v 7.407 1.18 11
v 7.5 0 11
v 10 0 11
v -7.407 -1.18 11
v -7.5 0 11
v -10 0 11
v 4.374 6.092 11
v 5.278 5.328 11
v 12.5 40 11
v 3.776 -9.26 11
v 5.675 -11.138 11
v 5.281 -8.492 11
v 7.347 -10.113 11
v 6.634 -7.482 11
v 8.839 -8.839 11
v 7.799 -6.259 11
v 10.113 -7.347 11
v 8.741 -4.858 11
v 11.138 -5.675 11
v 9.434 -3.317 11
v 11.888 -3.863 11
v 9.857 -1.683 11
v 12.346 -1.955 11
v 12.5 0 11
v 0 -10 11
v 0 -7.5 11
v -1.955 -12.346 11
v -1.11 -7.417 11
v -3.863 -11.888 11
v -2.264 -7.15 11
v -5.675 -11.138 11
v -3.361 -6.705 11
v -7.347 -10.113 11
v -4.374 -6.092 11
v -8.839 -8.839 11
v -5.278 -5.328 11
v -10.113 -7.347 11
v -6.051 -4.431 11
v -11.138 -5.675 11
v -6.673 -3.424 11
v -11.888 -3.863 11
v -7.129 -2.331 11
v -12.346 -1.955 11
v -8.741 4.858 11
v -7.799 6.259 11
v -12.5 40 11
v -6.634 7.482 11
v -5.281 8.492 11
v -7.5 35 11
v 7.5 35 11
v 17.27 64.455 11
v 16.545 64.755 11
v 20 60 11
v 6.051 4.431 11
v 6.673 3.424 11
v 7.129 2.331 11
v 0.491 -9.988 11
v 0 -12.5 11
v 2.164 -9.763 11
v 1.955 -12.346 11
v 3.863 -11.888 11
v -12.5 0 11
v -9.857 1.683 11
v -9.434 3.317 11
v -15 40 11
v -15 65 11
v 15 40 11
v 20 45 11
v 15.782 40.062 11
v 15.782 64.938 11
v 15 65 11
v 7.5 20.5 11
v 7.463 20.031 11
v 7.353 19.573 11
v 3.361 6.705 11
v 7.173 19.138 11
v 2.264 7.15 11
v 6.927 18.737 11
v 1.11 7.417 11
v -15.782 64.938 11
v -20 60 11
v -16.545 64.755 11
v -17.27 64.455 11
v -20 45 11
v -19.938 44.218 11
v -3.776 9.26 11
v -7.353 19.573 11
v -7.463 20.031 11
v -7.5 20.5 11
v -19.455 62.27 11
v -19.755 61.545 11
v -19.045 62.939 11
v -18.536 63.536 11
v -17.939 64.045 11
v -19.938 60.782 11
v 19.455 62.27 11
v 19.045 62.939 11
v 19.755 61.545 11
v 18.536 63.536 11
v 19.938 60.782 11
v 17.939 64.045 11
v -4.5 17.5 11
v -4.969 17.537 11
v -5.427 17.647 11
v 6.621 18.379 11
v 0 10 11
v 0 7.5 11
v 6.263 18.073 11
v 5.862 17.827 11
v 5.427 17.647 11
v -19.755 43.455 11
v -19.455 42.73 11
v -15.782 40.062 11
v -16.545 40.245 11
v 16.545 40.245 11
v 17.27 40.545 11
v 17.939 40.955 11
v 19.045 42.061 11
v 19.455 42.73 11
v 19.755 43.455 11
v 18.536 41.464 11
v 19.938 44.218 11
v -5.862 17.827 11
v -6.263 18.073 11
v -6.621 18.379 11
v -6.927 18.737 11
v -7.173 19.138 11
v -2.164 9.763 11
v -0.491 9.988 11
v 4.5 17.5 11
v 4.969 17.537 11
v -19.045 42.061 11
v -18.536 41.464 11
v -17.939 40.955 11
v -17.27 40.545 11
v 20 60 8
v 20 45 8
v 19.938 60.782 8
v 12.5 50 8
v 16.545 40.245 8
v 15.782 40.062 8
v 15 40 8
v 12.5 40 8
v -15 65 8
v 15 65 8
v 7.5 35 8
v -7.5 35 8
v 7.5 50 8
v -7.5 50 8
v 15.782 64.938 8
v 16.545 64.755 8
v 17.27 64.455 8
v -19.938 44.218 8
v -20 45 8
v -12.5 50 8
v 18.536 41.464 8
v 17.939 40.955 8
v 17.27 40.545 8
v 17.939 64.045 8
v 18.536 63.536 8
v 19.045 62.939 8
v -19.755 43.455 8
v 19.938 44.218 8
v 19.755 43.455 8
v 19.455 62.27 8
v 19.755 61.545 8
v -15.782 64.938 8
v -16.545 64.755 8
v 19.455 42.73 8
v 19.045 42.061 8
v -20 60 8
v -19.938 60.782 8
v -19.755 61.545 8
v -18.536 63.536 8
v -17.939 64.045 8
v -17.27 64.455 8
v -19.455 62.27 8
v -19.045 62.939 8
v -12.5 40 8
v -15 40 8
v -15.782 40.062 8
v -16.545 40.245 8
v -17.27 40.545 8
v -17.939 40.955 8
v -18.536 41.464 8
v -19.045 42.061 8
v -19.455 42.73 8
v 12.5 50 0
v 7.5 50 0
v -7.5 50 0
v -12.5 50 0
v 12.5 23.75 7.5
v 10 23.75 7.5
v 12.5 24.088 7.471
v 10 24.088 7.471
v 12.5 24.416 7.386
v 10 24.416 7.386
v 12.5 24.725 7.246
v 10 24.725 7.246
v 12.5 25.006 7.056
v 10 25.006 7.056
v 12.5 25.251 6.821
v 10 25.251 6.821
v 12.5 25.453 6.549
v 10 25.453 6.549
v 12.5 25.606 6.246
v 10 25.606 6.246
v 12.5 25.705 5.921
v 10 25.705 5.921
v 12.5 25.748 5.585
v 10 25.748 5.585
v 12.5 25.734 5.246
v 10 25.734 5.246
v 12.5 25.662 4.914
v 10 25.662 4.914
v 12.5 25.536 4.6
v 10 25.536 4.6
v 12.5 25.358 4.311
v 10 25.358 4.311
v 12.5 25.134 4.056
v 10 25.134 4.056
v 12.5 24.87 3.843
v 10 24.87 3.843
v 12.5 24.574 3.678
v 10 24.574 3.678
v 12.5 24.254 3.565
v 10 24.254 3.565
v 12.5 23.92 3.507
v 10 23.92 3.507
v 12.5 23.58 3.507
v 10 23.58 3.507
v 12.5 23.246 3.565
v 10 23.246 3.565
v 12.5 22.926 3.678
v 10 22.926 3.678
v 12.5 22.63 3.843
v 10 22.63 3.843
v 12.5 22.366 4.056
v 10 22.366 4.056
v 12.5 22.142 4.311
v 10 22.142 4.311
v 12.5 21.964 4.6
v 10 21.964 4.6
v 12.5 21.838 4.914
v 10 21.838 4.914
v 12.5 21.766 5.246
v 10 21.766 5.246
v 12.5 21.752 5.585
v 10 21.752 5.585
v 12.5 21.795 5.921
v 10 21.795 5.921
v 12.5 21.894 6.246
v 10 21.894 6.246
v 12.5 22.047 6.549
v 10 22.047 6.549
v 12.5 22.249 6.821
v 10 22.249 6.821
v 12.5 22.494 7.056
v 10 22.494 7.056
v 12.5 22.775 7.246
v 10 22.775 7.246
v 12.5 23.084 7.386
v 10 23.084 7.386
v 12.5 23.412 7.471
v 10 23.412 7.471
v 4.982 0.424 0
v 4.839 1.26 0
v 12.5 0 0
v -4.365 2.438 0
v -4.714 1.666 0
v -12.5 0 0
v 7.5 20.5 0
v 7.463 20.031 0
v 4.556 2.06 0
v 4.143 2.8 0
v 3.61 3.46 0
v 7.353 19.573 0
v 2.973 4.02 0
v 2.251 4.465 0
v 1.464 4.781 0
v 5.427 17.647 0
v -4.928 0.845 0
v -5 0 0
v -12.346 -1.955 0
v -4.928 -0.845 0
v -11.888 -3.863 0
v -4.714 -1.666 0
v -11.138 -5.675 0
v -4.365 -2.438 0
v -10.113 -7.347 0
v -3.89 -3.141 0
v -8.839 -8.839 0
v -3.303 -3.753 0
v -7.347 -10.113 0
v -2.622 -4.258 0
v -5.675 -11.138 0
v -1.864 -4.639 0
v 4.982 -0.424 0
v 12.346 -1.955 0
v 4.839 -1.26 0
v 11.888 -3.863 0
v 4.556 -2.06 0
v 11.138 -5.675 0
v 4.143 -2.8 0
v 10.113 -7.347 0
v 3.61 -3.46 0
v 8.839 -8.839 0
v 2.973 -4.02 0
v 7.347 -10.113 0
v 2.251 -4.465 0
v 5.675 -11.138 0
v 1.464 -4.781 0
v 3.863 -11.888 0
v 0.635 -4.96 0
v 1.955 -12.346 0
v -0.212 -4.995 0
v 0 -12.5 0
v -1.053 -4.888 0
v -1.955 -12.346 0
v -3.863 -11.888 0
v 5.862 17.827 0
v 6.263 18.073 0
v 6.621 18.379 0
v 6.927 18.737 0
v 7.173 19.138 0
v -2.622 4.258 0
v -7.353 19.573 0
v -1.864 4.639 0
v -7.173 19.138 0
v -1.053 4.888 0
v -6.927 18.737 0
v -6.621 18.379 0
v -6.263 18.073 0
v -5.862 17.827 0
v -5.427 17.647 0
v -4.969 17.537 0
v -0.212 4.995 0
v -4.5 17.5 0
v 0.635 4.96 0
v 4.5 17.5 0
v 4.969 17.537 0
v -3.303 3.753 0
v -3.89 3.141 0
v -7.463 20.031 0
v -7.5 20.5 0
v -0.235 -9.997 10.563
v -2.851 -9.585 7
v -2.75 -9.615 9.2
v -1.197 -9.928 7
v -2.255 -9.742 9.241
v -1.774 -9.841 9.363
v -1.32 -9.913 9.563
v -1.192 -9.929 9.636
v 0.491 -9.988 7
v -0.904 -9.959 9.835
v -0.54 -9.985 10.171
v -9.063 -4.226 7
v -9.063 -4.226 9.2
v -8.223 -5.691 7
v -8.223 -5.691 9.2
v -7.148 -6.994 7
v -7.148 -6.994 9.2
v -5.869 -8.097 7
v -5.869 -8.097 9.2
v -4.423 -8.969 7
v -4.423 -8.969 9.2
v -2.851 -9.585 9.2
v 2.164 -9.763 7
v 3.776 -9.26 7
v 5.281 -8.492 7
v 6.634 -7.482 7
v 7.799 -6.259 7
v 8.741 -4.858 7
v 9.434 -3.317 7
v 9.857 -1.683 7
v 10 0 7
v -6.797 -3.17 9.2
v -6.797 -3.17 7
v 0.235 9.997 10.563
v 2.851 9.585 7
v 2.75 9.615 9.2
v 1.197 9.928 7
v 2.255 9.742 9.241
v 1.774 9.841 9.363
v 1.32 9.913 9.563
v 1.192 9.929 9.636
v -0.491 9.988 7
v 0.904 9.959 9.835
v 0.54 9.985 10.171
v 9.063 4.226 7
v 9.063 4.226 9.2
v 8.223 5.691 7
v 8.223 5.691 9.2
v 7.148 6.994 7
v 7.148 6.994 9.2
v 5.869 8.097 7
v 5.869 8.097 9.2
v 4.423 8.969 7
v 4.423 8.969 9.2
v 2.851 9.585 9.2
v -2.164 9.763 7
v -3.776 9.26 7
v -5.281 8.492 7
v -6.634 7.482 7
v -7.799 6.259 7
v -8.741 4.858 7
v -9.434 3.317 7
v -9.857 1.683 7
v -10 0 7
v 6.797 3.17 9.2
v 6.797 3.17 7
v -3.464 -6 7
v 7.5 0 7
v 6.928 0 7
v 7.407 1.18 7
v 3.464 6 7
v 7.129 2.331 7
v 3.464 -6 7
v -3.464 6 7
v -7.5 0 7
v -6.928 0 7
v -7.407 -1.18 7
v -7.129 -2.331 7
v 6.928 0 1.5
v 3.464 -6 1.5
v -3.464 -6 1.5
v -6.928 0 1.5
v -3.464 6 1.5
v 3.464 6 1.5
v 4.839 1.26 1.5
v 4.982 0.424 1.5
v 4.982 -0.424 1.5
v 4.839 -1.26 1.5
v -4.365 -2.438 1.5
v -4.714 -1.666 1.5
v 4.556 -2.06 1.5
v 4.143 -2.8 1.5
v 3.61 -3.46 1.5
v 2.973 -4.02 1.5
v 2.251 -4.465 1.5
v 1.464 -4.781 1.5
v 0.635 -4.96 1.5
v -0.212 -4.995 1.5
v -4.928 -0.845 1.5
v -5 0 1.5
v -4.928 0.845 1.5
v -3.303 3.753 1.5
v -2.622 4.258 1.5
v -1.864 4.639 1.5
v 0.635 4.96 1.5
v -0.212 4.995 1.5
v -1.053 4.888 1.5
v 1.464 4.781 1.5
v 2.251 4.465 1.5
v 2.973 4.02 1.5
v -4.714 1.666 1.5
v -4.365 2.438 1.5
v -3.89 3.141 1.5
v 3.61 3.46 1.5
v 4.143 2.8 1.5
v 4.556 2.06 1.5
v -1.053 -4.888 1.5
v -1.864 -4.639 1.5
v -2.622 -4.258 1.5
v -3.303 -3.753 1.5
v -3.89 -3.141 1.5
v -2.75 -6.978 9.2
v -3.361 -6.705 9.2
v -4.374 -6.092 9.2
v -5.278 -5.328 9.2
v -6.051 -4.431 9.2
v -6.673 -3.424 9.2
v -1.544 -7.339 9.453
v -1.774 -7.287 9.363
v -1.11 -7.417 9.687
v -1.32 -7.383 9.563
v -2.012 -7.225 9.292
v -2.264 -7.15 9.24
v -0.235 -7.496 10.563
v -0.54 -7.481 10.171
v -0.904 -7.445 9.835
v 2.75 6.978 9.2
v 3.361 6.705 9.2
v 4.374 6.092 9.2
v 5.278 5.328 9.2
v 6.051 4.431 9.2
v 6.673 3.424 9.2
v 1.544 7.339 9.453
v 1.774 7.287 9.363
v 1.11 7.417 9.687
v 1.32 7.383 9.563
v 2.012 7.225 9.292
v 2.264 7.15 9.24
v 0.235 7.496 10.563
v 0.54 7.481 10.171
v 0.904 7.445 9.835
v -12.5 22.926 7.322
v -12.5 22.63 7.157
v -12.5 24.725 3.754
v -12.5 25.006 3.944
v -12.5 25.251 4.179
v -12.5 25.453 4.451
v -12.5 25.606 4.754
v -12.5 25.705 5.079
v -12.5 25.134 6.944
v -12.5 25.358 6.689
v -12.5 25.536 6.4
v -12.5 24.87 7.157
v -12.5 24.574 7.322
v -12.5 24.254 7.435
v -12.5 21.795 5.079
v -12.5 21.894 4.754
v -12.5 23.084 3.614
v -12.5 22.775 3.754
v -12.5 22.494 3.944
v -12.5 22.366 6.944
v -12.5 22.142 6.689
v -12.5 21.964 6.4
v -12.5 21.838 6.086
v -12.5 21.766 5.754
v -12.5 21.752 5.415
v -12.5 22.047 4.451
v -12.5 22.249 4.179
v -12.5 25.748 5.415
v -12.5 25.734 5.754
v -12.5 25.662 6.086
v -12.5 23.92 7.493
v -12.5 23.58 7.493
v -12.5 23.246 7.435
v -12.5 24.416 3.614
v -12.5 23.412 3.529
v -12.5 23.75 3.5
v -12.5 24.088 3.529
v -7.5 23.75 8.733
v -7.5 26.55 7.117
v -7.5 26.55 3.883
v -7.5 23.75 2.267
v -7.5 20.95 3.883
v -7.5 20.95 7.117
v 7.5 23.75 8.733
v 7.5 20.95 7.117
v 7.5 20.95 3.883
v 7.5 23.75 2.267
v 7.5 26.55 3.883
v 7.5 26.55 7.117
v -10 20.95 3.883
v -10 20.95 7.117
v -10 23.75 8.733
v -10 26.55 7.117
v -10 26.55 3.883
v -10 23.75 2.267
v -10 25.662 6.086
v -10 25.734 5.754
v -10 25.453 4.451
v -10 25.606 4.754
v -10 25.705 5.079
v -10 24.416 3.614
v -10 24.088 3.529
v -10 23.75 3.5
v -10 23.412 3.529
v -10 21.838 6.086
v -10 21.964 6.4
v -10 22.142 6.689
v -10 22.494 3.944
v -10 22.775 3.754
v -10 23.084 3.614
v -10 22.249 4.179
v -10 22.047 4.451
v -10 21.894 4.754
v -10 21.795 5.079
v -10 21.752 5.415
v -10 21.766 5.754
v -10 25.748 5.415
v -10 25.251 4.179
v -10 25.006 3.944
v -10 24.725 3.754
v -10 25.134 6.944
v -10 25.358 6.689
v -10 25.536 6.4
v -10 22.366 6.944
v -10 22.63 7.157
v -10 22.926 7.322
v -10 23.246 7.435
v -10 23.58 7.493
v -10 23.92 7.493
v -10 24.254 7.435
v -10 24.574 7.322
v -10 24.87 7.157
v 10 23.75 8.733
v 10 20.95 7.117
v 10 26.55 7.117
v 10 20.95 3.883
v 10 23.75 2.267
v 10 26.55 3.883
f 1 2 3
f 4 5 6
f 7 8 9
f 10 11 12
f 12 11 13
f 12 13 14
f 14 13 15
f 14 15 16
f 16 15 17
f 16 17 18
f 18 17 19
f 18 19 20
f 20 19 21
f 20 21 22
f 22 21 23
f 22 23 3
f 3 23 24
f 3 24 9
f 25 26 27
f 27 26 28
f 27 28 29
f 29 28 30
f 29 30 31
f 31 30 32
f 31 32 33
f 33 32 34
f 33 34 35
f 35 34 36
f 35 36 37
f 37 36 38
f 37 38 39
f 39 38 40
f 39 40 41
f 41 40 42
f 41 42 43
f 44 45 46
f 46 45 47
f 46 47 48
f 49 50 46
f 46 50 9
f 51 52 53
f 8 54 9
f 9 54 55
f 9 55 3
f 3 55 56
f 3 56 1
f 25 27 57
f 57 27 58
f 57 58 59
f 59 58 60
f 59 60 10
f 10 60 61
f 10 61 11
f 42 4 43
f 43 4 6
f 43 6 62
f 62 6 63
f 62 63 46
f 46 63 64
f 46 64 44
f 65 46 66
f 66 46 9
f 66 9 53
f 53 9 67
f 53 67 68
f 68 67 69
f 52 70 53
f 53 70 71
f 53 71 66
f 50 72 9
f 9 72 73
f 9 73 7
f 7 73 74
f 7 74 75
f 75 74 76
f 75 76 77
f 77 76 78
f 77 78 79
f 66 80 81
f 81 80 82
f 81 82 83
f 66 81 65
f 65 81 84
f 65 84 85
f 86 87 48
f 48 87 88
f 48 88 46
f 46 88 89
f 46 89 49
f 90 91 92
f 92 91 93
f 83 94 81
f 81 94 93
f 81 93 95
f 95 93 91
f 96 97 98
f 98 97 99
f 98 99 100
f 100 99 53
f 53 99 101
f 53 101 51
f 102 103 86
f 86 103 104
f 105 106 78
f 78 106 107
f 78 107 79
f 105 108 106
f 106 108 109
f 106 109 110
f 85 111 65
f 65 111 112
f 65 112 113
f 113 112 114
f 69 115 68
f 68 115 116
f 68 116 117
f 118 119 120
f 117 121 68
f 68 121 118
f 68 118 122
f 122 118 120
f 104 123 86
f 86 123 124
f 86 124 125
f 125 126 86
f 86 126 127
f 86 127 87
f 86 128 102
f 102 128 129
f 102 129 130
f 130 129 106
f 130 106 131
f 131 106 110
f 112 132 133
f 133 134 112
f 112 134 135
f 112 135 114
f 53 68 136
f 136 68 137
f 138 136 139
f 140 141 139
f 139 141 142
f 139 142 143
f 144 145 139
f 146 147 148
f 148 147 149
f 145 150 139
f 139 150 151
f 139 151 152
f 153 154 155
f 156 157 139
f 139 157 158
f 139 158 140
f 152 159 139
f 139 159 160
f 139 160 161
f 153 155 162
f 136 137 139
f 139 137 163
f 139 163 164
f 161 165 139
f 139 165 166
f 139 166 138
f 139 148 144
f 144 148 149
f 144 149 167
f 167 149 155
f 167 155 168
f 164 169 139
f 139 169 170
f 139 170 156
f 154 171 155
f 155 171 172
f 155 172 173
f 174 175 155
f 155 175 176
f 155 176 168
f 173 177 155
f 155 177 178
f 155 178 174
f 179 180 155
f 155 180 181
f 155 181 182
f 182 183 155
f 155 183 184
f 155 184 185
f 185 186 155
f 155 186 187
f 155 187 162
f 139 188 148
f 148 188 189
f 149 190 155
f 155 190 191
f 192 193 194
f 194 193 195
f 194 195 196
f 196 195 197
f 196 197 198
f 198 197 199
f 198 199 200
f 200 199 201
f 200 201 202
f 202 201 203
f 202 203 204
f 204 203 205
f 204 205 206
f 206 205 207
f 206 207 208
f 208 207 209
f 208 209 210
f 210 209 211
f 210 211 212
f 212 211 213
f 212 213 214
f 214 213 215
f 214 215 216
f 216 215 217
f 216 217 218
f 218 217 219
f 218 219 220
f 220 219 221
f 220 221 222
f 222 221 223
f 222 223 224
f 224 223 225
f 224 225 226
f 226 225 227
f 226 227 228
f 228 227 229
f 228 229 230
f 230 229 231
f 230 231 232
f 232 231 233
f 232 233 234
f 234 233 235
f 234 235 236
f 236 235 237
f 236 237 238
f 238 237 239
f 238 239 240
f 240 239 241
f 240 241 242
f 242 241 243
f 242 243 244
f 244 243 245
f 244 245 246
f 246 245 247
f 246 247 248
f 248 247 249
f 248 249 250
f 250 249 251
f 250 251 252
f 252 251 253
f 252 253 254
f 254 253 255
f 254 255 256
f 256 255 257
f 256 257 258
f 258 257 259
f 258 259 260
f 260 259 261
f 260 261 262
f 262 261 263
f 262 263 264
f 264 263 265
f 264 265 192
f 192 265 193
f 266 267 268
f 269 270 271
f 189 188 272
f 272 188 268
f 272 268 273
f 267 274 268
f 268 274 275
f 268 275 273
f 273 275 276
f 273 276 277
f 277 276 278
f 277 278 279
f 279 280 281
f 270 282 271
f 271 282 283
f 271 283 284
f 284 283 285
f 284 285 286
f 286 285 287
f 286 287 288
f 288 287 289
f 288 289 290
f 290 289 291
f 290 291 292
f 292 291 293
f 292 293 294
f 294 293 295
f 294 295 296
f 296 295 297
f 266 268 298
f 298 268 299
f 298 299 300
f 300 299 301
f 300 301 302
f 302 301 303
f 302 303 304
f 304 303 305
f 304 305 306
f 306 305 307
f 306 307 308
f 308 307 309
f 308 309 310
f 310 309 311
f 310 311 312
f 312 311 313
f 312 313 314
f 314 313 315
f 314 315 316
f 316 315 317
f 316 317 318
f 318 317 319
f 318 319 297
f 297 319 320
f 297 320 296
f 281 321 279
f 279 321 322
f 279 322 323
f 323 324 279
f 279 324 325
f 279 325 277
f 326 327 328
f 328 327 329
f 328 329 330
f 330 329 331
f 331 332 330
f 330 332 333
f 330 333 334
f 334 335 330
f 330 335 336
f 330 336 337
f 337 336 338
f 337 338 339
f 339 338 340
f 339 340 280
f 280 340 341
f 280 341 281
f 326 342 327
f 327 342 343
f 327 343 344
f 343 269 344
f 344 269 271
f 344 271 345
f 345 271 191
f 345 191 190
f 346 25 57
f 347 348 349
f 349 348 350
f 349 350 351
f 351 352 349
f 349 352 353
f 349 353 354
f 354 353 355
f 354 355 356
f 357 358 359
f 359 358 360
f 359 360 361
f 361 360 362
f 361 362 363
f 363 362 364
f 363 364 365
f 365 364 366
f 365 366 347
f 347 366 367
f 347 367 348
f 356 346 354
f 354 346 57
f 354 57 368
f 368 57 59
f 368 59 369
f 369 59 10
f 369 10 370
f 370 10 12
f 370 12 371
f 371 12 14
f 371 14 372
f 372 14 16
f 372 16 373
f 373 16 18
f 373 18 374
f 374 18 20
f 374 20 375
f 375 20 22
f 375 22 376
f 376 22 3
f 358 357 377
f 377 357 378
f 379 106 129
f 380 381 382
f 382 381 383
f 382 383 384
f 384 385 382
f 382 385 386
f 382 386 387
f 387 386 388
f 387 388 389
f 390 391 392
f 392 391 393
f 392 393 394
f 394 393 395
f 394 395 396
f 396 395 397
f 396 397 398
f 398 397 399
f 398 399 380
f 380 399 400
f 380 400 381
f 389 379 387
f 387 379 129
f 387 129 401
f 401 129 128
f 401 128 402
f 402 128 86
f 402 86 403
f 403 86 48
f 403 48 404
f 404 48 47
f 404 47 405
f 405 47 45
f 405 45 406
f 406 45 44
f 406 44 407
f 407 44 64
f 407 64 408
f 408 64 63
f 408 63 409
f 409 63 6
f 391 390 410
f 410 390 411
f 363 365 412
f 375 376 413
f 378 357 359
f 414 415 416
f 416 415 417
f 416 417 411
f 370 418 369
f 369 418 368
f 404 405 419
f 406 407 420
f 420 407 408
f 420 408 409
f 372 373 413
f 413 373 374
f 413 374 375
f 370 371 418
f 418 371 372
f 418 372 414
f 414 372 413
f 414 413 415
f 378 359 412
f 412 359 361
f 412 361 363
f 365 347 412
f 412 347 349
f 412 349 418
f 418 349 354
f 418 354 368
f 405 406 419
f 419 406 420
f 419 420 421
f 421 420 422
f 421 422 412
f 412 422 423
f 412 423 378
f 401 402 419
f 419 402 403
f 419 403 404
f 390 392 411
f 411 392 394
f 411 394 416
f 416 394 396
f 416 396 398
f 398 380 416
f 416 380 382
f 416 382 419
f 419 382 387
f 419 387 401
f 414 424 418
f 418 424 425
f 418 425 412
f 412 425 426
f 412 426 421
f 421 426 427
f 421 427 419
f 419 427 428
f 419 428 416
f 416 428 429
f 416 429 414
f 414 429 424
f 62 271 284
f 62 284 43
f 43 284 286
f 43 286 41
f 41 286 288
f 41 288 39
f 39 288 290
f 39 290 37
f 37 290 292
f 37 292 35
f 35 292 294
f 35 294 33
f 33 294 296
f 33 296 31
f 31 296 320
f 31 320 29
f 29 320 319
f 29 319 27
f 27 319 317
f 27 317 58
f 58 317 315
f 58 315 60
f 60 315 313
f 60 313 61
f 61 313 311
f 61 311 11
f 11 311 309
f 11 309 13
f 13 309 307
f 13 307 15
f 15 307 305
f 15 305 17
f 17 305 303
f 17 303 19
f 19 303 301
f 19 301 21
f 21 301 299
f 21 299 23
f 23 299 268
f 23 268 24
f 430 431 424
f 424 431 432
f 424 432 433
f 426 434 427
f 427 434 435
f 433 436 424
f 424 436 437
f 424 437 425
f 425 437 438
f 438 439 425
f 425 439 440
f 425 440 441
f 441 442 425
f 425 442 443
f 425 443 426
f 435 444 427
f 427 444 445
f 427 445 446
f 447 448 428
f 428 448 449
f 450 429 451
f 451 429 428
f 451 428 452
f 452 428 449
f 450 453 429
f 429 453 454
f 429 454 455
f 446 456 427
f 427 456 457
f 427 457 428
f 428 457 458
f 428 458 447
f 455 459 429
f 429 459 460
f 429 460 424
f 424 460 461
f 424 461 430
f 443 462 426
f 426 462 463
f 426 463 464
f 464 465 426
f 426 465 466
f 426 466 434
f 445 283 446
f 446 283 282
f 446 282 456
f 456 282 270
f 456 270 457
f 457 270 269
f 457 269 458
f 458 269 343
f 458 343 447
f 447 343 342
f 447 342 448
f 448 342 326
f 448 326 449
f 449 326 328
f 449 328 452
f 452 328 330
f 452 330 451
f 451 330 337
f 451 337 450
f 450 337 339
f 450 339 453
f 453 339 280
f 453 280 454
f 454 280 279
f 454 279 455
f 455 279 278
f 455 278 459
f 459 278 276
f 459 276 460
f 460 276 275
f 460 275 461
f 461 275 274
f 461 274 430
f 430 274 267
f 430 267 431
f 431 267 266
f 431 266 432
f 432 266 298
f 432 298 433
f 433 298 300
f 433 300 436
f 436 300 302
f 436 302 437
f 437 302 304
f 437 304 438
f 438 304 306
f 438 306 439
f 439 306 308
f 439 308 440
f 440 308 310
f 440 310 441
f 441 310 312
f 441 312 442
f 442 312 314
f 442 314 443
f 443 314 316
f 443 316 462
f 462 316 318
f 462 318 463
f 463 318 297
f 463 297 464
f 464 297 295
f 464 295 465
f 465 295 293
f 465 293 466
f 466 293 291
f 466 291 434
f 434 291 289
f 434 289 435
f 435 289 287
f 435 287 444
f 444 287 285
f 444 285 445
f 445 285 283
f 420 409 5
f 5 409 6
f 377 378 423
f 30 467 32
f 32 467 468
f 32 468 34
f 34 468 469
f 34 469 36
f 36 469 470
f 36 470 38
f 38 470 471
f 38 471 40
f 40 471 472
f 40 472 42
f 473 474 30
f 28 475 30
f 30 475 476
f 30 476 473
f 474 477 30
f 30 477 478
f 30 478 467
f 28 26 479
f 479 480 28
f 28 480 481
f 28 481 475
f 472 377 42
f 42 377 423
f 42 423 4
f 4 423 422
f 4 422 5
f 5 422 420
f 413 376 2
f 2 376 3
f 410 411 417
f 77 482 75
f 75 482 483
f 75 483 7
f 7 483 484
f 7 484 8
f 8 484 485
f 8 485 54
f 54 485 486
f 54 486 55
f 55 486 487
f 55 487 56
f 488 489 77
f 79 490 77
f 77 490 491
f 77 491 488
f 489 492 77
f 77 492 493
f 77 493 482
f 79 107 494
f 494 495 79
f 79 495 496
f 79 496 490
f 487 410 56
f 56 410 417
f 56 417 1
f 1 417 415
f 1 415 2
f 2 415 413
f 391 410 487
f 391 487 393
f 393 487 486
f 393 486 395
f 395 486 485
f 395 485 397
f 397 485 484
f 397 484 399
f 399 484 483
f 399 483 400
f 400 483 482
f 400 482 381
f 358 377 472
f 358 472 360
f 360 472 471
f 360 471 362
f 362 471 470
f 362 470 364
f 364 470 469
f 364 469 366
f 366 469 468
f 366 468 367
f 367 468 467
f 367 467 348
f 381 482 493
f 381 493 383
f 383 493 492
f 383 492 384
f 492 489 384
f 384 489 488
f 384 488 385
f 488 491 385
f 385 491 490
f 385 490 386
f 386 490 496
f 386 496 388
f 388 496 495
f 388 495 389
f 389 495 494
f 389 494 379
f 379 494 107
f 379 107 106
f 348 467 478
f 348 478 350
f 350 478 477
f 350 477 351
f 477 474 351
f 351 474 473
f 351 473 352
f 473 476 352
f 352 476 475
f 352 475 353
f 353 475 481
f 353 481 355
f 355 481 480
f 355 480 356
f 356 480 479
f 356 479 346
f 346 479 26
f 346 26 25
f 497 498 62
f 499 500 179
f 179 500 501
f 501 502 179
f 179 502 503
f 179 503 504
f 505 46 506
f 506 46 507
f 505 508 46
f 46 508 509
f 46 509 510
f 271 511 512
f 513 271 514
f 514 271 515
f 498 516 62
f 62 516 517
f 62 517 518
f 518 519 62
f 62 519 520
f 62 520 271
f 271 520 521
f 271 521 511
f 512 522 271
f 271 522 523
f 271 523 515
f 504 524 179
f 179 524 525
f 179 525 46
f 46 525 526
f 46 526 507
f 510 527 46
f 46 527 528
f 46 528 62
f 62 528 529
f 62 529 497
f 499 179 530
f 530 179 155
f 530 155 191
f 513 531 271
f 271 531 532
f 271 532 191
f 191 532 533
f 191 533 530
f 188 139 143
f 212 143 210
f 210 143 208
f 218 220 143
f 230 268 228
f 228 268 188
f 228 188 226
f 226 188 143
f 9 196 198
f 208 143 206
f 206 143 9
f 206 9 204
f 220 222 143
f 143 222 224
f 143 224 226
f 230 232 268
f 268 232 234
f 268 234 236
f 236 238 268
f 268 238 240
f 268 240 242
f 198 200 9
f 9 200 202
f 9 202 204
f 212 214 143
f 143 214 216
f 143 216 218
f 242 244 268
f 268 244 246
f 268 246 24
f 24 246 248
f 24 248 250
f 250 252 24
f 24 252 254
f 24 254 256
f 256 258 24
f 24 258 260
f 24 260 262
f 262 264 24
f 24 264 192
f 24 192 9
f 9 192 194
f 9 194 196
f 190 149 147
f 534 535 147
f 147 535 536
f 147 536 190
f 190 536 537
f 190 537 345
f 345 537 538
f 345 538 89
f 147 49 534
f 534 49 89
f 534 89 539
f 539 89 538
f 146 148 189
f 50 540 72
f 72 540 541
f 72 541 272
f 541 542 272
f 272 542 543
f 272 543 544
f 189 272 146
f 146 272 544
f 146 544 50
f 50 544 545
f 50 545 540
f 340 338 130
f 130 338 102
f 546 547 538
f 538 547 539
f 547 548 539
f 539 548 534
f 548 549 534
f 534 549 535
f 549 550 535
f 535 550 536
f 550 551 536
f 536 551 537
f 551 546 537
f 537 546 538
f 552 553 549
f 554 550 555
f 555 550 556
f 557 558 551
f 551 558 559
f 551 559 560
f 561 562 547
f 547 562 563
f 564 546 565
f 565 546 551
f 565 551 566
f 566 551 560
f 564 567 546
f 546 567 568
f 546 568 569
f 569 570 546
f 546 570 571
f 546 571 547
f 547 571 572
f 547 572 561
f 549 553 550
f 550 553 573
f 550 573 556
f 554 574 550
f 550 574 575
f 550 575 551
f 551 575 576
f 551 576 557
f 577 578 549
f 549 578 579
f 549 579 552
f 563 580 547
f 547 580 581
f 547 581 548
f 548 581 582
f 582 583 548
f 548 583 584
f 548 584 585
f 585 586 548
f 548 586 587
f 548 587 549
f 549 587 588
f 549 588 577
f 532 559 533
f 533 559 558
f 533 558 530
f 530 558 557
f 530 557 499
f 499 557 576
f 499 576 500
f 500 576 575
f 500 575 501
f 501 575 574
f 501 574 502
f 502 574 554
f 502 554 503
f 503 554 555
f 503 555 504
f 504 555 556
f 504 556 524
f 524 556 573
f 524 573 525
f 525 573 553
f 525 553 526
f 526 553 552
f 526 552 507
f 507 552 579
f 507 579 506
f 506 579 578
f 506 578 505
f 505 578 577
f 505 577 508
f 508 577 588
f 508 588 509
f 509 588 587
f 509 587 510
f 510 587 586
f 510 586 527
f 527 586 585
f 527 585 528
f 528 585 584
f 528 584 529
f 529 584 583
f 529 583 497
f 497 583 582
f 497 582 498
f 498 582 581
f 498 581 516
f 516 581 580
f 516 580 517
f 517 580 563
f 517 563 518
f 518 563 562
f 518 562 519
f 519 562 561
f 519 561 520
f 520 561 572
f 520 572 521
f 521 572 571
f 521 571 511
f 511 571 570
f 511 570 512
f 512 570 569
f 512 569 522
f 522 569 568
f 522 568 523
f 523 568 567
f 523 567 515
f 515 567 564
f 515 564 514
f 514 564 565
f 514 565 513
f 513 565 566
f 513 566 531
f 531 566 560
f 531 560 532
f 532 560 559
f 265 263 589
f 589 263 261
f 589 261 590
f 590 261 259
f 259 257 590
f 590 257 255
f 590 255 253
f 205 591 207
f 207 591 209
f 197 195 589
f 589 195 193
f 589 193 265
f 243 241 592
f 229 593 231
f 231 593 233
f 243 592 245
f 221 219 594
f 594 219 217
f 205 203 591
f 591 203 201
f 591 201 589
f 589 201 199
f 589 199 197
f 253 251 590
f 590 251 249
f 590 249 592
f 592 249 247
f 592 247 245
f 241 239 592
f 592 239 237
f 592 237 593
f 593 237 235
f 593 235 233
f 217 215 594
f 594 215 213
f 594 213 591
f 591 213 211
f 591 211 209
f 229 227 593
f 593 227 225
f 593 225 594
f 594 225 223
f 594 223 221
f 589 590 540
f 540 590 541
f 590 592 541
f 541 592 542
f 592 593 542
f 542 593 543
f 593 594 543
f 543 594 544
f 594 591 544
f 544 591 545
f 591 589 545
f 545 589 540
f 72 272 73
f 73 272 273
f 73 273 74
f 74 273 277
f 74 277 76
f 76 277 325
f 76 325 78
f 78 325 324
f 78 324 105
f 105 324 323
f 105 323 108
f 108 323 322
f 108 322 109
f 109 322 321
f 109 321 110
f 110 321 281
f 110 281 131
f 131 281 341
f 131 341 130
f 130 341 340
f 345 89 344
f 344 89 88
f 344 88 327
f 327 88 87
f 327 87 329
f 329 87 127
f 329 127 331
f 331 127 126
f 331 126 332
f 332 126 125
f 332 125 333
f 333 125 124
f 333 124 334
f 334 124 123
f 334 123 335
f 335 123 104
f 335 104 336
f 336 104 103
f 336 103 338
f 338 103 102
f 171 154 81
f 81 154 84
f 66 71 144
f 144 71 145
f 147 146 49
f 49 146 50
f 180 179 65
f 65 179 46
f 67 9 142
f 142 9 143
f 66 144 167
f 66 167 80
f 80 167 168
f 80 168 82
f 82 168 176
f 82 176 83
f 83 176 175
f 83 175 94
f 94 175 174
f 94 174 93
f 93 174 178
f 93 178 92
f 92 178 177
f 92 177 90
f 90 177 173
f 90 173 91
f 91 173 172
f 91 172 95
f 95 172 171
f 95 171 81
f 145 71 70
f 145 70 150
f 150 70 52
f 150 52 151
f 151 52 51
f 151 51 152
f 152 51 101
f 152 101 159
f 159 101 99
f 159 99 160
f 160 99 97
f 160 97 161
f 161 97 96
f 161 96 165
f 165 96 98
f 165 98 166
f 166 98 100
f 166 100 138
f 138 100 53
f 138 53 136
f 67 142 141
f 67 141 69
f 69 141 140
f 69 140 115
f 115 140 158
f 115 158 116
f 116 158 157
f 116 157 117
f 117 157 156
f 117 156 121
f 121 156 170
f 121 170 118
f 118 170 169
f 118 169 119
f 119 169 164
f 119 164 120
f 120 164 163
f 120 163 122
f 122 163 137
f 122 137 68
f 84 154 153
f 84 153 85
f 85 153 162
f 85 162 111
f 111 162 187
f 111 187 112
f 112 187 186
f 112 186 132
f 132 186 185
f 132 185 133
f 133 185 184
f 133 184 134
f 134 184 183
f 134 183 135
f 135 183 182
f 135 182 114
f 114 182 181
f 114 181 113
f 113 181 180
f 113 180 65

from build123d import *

# Parameters (mm, degrees)
SKETCH1_R           = 12.5
BOSS_EXTRUDE1_DEPTH = 10
SKETCH2_R           = 12.5
SKETCH2_R_2         = 5
BOSS_EXTRUDE2_DEPTH = 1.5
CUT_EXTRUDE3_START  = -3
SKETCH3_R           = 12.5
CUT_EXTRUDE3_DEPTH  = 3
SKETCH4_R           = 12.5
SKETCH4_R_2         = 7.5
BOSS_EXTRUDE3_DEPTH = 4
CUT_EXTRUDE4_START  = -4
SKETCH5_R           = 10
SKETCH5_R_2         = 7.5
CUT_EXTRUDE4_DEPTH  = 4
BOSS_EXTRUDE4_DEPTH = 4
BOSS_EXTRUDE5_START = -1.8
BOSS_EXTRUDE5_DEPTH = 1.8
FILLET1_R           = 3
BOSS_EXTRUDE6_START = -11
BOSS_EXTRUDE6_DEPTH = 11
CUT_EXTRUDE5_DEPTH  = 12.5
CUT_EXTRUDE6_DEPTH  = 2.5
CUT_EXTRUDE7_DEPTH  = 40.080046087
SKETCH12_R          = 2
CUT_EXTRUDE8_DEPTH  = 38.696153679
CUT_EXTRUDE9_DEPTH  = 2.5
FILLET2_R           = 3
SKETCH14_W          = 5
SKETCH14_H          = 11
BOSS_EXTRUDE7_DEPTH = 20
SKETCH15_W          = 15
SKETCH15_H          = 15
BOSS_EXTRUDE8_DEPTH = 3
SKETCH16_W          = 7.5
SKETCH16_H          = 5
CUT_EXTRUDE10_DEPTH = 3
FILLET3_R           = 5


with BuildPart() as part:
    # Sketch1 → Boss-Extrude1 (new body)
    with BuildSketch(Plane.XY):
        Circle(SKETCH1_R)
        Polygon((3.464101615, -6), (6.92820323, 0), (3.464101615, 6), (-3.464101615, 6), (-6.92820323, 0), (-3.464101615, -6), align=None, mode=Mode.SUBTRACT)
    extrude(amount=BOSS_EXTRUDE1_DEPTH)

    # Sketch2 → Boss-Extrude2 (add)
    with BuildSketch(Plane(origin=(0, 0, 0), x_dir=(-1, 0, 0), z_dir=(0, 0, -1))):
        with Locations(Location((0, 0, 0), (0, 0, 180))):
            Circle(SKETCH2_R)
        Circle(SKETCH2_R_2, mode=Mode.SUBTRACT)
    extrude(amount=-BOSS_EXTRUDE2_DEPTH)

    # Sketch3 → Cut-Extrude3 (cut)
    with BuildSketch(Plane.XY.offset(10).offset(CUT_EXTRUDE3_START)):
        Circle(SKETCH3_R)
    extrude(amount=CUT_EXTRUDE3_DEPTH, mode=Mode.SUBTRACT)

    # Sketch4 → Boss-Extrude3 (add)
    with BuildSketch(Plane.XY.offset(7)):
        Circle(SKETCH4_R)
        Circle(SKETCH4_R_2, mode=Mode.SUBTRACT)
    extrude(amount=BOSS_EXTRUDE3_DEPTH)

    # Sketch5 → Cut-Extrude4 (cut)
    with BuildSketch(Plane.XY.offset(11).offset(CUT_EXTRUDE4_START)):
        Circle(SKETCH5_R)
        Circle(SKETCH5_R_2, mode=Mode.SUBTRACT)
    extrude(amount=CUT_EXTRUDE4_DEPTH, mode=Mode.SUBTRACT)

    # Sketch6 → Boss-Extrude4 (add)
    with BuildSketch(Plane.XY.offset(7)):
        with BuildLine():
            ThreePointArc((-6.797308403, -3.169636963), (-7.322220053, -1.623297105), (-7.5, 0))
            Line((-7.5, 0), (-10, 0))
            ThreePointArc((-10, 0), (-9.762960071, -2.164396139), (-9.06307787, -4.226182617))
            Line((-9.06307787, -4.226182617), (-6.797308403, -3.169636963))
        make_face()
        with BuildLine():
            ThreePointArc((6.797308403, 3.169636963), (7.322220053, 1.623297105), (7.5, 0))
            Line((7.5, 0), (10, 0))
            ThreePointArc((10, 0), (9.762960071, 2.164396139), (9.06307787, 4.226182617))
            Line((9.06307787, 4.226182617), (6.797308403, 3.169636963))
        make_face()
    extrude(amount=BOSS_EXTRUDE4_DEPTH)

    # Sketch7 → Boss-Extrude5 (add)
    with BuildSketch(Plane.XY.offset(11).offset(BOSS_EXTRUDE5_START)):
        with BuildLine():
            Line((0, 10), (0, 7.5))
            ThreePointArc((0, 7.5), (4.029747063, 6.325435844), (6.797308403, 3.169636963))
            Line((6.797308403, 3.169636963), (9.06307787, 4.226182617))
            ThreePointArc((9.06307787, 4.226182617), (5.372996083, 8.433914458), (0, 10))
        make_face()
        with BuildLine():
            Line((0, -10), (0, -7.5))
            ThreePointArc((0, -7.5), (-4.029747063, -6.325435844), (-6.797308403, -3.169636963))
            Line((-6.797308403, -3.169636963), (-9.06307787, -4.226182617))
            ThreePointArc((-9.06307787, -4.226182617), (-5.372996083, -8.433914458), (0, -10))
        make_face()
    extrude(amount=BOSS_EXTRUDE5_DEPTH)

    # Fillet1
    # the kernel refuses this fillet: 3 mm, written as the material it takes off along each edge
    with BuildSketch(Plane(origin=(0, 16.873863542, 9.2), x_dir=(1, 0, 0), z_dir=(0, -1, 0))) as fillet1_piece_1_section:
        with BuildLine():
            CenterArc((2.749545417, 3), FILLET1_R, 203.578178478, 66.421821522)
            Line((0, 1.8), (0, 0))
            Line((0, 0), (2.749545417, 0))
        make_face()
    fillet1_piece_1 = extrude(amount=16.247727085, mode=Mode.PRIVATE)
    fillet1_piece_1 = fillet1_piece_1 & Plane(origin=(0, 0, 9.68499996), x_dir=(1, 0, 0), z_dir=(0, 0, -1)) * Cylinder(10, 44, mode=Mode.PRIVATE)
    add(fillet1_piece_1, mode=Mode.SUBTRACT)
    with BuildSketch(Plane(origin=(0, -16.873863542, 9.2), x_dir=(-1, 0, 0), z_dir=(0, 1, 0))) as fillet1_piece_2_section:
        with BuildLine():
            CenterArc((2.749545417, 3), FILLET1_R, 203.578178478, 66.421821522)
            Line((0, 1.8), (0, 0))
            Line((0, 0), (2.749545417, 0))
        make_face()
    fillet1_piece_2 = extrude(amount=16.247727085, mode=Mode.PRIVATE)
    fillet1_piece_2 = fillet1_piece_2 & Plane(origin=(0, 0, 9.68499996), x_dir=(1, 0, 0), z_dir=(0, 0, -1)) * Cylinder(10, 44, mode=Mode.PRIVATE)
    add(fillet1_piece_2, mode=Mode.SUBTRACT)

    # Sketch8 → Boss-Extrude6 (add)
    with BuildSketch(Plane.XY.offset(11).offset(BOSS_EXTRUDE6_START)):
        with BuildLine():
            Line((12.5, 0), (12.5, 30))
            Line((12.5, 30), (-12.5, 30))
            Line((-12.5, 30), (-12.5, 0))
            ThreePointArc((-12.5, 0), (0, 12.5), (12.5, 0))
        make_face()
    extrude(amount=BOSS_EXTRUDE6_DEPTH)

    # Sketch9 → Cut-Extrude5 (cut)
    with BuildSketch(Plane(origin=(0, 30, 0), x_dir=(1, 0, 0), z_dir=(0, 1, 0))):
        Polygon((-7.5, 0), (-7.5, -5.5), (-7.5, -11), (7.5, -11), (7.5, -5.5), (7.5, 0), align=None)
    extrude(amount=-CUT_EXTRUDE5_DEPTH, mode=Mode.SUBTRACT)

    # Sketch10 → Cut-Extrude6 (cut)
    with BuildSketch(Plane(origin=(-7.5, 0, 0), x_dir=(0, 0, -1), z_dir=(1, 0, 0))):
        Polygon((-3.883419246, 26.55), (-5.5, 26.55), (-5.5, 20.95), (-3.883419246, 20.95), (-2.266838493, 23.75), align=None)
        Polygon((-5.5, 20.95), (-5.5, 26.55), (-7.116580754, 26.55), (-8.733161507, 23.75), (-7.116580754, 20.95), align=None)
    extrude(amount=-CUT_EXTRUDE6_DEPTH, mode=Mode.SUBTRACT)

    # Sketch11 → Cut-Extrude7 (cut, through all)
    with BuildSketch(Plane(origin=(-10, 0, 0), x_dir=(0, 0, -1), z_dir=(1, 0, 0))):
        with BuildLine():
            ThreePointArc((-3.5, 23.75), (-4.085786438, 25.164213562), (-5.5, 25.75))
            Line((-5.5, 25.75), (-5.5, 21.75))
            ThreePointArc((-5.5, 21.75), (-4.085786438, 22.335786438), (-3.5, 23.75))
        make_face()
        with BuildLine():
            Line((-5.5, 21.75), (-5.5, 25.75))
            ThreePointArc((-5.5, 25.75), (-7.5, 23.75), (-5.5, 21.75))
        make_face()
    extrude(amount=-CUT_EXTRUDE7_DEPTH, mode=Mode.SUBTRACT)

    # Sketch12 → Cut-Extrude8 (cut, through all)
    with BuildSketch(Plane.ZY.offset(-7.5)):
        with Locations(Location((5.5, 23.75, 0), (0, 0, 180))):
            Circle(SKETCH12_R)
    extrude(amount=-CUT_EXTRUDE8_DEPTH, mode=Mode.SUBTRACT)

    # Sketch13 → Cut-Extrude9 (cut)
    with BuildSketch(Plane.ZY.offset(-7.5)):
        Polygon((8.733161507, 23.75), (7.116580754, 26.55), (3.883419246, 26.55), (2.266838493, 23.75), (3.883419246, 20.95), (7.116580754, 20.95), align=None)
    extrude(amount=-CUT_EXTRUDE9_DEPTH, mode=Mode.SUBTRACT)

    # Fillet2
    fillet2_edges = [part.edges().sort_by_distance(p)[0] for p in [
        (-7.5, 17.5, 5.5),
        (7.5, 17.5, 5.5),
    ]]
    fillet(fillet2_edges, radius=FILLET2_R)

    # Sketch14 → Boss-Extrude7 (add)
    with BuildSketch(Plane(origin=(0, 30, 0), x_dir=(1, 0, 0), z_dir=(0, 1, 0))):
        with Locations((10, -5.5)):
            Rectangle(SKETCH14_W, SKETCH14_H)
        with Locations((-10, -5.5)):
            Rectangle(SKETCH14_W, SKETCH14_H)
    extrude(amount=BOSS_EXTRUDE7_DEPTH)

    # Sketch15 → Boss-Extrude8 (add)
    with BuildSketch(Plane.XY.offset(11)):
        with Locations((0, 42.5)):
            Rectangle(SKETCH15_W, SKETCH15_H)
        Polygon((-12.5, 50), (-7.5, 50), (7.5, 50), (12.5, 50), (12.5, 35), (20, 35), (20, 65), (-20, 65), (-20, 35), (-12.5, 35), align=None)
    extrude(amount=-BOSS_EXTRUDE8_DEPTH)

    # Sketch16 → Cut-Extrude10 (cut)
    with BuildSketch(Plane.XY.offset(11)):
        with Locations((16.25, 37.5)):
            Rectangle(SKETCH16_W, SKETCH16_H)
        with Locations((-16.25, 37.5)):
            Rectangle(SKETCH16_W, SKETCH16_H)
    extrude(amount=-CUT_EXTRUDE10_DEPTH, mode=Mode.SUBTRACT)

    # Fillet3
    fillet3_edges = [part.edges().sort_by_distance(p)[0] for p in [
        (-20, 65, 9.5),
        (20, 65, 9.5),
        (20, 40, 9.5),
        (-20, 40, 9.5),
    ]]
    fillet(fillet3_edges, radius=FILLET3_R)


solid = part.part
